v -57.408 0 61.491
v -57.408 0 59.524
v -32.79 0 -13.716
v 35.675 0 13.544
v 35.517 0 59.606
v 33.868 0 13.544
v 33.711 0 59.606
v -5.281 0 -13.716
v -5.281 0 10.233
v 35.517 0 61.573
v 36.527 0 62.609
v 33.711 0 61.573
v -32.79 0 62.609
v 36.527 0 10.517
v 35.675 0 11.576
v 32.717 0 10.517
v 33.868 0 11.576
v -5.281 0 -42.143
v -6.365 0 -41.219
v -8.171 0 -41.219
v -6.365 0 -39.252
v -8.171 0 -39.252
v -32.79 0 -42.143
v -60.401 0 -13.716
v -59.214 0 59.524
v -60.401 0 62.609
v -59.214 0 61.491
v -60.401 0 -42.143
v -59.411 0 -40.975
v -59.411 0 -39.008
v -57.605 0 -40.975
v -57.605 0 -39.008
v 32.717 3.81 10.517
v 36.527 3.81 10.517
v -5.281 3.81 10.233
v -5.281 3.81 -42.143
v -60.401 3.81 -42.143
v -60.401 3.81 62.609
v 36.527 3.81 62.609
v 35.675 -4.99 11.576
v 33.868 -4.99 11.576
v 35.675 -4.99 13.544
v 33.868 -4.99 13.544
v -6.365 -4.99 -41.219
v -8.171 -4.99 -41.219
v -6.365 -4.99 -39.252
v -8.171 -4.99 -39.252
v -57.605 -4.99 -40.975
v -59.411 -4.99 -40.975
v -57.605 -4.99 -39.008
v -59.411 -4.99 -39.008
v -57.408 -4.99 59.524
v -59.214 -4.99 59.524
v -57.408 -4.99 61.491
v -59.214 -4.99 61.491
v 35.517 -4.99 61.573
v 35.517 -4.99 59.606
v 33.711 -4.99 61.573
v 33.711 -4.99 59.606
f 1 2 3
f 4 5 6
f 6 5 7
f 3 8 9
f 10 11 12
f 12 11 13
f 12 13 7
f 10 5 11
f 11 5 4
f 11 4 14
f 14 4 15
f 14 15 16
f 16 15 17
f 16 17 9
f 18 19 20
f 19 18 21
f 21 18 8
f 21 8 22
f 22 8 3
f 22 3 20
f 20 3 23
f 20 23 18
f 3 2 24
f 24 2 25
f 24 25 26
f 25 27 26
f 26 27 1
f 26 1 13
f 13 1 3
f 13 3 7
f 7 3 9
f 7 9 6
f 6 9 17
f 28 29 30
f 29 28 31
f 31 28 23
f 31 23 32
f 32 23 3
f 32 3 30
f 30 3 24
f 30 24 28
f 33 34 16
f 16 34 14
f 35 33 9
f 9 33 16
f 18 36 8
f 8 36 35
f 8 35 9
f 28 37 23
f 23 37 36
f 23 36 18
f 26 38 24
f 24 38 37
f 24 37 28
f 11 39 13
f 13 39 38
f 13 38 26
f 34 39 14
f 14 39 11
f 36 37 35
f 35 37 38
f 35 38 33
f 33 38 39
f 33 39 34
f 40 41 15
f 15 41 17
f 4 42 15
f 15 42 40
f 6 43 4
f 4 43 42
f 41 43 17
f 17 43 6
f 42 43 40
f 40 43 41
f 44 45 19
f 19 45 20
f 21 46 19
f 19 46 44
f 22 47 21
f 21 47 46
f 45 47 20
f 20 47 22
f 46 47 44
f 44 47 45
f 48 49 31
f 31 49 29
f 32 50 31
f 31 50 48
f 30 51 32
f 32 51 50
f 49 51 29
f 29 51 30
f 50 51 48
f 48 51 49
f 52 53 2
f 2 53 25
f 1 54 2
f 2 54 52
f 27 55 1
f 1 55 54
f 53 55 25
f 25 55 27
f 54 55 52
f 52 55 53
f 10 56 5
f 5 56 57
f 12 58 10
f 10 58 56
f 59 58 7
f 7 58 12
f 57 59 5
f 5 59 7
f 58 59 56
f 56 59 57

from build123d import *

# Parameters (mm, degrees)
BOSS_EXTRUDE1_DEPTH = 3.81
SKETCH2_W           = 1.806317066
SKETCH2_H           = 1.967276013
SKETCH2_W_2         = 1.806317067
BOSS_EXTRUDE3_DEPTH = 8.8


with BuildPart() as part:
    # Sketch1 → Boss-Extrude1 (new body)
    with BuildSketch(Plane(origin=(0, 0, 0), x_dir=(1, 0, 0), z_dir=(0, 1, 0))):
        Polygon((36.52712799, -14.326641718), (36.52712799, -62.609481683), (-60.401431987, -62.609481683), (-60.401431987, 42.143358282), (-9.091431987, 42.143358282), (-5.281431987, 42.143358282), (-5.281431987, 38.333358282), (-5.281431987, -10.233061701), (32.71712799, -10.516641718), (36.52712799, -10.516641718), align=None)
    extrude(amount=BOSS_EXTRUDE1_DEPTH)

    # Sketch2 → Boss-Extrude3 (add)
    with BuildSketch(Plane(origin=(0, 3.81, 0), x_dir=(1, 0, 0), z_dir=(0, 1, 0))):
        with Locations((34.771422609, -12.560052875)):
            Rectangle(SKETCH2_W, SKETCH2_H)
        with Locations((-7.268072139, 40.235776176)):
            Rectangle(SKETCH2_W_2, SKETCH2_H)
        with Locations((-58.508052472, 39.991804454)):
            Rectangle(SKETCH2_W_2, SKETCH2_H)
        with Locations((-58.311142754, -60.507662725)):
            Rectangle(SKETCH2_W_2, SKETCH2_H)
        with Locations((34.614322263, -60.589626835)):
            Rectangle(SKETCH2_W, SKETCH2_H)
    extrude(amount=-BOSS_EXTRUDE3_DEPTH)


solid = part.part
